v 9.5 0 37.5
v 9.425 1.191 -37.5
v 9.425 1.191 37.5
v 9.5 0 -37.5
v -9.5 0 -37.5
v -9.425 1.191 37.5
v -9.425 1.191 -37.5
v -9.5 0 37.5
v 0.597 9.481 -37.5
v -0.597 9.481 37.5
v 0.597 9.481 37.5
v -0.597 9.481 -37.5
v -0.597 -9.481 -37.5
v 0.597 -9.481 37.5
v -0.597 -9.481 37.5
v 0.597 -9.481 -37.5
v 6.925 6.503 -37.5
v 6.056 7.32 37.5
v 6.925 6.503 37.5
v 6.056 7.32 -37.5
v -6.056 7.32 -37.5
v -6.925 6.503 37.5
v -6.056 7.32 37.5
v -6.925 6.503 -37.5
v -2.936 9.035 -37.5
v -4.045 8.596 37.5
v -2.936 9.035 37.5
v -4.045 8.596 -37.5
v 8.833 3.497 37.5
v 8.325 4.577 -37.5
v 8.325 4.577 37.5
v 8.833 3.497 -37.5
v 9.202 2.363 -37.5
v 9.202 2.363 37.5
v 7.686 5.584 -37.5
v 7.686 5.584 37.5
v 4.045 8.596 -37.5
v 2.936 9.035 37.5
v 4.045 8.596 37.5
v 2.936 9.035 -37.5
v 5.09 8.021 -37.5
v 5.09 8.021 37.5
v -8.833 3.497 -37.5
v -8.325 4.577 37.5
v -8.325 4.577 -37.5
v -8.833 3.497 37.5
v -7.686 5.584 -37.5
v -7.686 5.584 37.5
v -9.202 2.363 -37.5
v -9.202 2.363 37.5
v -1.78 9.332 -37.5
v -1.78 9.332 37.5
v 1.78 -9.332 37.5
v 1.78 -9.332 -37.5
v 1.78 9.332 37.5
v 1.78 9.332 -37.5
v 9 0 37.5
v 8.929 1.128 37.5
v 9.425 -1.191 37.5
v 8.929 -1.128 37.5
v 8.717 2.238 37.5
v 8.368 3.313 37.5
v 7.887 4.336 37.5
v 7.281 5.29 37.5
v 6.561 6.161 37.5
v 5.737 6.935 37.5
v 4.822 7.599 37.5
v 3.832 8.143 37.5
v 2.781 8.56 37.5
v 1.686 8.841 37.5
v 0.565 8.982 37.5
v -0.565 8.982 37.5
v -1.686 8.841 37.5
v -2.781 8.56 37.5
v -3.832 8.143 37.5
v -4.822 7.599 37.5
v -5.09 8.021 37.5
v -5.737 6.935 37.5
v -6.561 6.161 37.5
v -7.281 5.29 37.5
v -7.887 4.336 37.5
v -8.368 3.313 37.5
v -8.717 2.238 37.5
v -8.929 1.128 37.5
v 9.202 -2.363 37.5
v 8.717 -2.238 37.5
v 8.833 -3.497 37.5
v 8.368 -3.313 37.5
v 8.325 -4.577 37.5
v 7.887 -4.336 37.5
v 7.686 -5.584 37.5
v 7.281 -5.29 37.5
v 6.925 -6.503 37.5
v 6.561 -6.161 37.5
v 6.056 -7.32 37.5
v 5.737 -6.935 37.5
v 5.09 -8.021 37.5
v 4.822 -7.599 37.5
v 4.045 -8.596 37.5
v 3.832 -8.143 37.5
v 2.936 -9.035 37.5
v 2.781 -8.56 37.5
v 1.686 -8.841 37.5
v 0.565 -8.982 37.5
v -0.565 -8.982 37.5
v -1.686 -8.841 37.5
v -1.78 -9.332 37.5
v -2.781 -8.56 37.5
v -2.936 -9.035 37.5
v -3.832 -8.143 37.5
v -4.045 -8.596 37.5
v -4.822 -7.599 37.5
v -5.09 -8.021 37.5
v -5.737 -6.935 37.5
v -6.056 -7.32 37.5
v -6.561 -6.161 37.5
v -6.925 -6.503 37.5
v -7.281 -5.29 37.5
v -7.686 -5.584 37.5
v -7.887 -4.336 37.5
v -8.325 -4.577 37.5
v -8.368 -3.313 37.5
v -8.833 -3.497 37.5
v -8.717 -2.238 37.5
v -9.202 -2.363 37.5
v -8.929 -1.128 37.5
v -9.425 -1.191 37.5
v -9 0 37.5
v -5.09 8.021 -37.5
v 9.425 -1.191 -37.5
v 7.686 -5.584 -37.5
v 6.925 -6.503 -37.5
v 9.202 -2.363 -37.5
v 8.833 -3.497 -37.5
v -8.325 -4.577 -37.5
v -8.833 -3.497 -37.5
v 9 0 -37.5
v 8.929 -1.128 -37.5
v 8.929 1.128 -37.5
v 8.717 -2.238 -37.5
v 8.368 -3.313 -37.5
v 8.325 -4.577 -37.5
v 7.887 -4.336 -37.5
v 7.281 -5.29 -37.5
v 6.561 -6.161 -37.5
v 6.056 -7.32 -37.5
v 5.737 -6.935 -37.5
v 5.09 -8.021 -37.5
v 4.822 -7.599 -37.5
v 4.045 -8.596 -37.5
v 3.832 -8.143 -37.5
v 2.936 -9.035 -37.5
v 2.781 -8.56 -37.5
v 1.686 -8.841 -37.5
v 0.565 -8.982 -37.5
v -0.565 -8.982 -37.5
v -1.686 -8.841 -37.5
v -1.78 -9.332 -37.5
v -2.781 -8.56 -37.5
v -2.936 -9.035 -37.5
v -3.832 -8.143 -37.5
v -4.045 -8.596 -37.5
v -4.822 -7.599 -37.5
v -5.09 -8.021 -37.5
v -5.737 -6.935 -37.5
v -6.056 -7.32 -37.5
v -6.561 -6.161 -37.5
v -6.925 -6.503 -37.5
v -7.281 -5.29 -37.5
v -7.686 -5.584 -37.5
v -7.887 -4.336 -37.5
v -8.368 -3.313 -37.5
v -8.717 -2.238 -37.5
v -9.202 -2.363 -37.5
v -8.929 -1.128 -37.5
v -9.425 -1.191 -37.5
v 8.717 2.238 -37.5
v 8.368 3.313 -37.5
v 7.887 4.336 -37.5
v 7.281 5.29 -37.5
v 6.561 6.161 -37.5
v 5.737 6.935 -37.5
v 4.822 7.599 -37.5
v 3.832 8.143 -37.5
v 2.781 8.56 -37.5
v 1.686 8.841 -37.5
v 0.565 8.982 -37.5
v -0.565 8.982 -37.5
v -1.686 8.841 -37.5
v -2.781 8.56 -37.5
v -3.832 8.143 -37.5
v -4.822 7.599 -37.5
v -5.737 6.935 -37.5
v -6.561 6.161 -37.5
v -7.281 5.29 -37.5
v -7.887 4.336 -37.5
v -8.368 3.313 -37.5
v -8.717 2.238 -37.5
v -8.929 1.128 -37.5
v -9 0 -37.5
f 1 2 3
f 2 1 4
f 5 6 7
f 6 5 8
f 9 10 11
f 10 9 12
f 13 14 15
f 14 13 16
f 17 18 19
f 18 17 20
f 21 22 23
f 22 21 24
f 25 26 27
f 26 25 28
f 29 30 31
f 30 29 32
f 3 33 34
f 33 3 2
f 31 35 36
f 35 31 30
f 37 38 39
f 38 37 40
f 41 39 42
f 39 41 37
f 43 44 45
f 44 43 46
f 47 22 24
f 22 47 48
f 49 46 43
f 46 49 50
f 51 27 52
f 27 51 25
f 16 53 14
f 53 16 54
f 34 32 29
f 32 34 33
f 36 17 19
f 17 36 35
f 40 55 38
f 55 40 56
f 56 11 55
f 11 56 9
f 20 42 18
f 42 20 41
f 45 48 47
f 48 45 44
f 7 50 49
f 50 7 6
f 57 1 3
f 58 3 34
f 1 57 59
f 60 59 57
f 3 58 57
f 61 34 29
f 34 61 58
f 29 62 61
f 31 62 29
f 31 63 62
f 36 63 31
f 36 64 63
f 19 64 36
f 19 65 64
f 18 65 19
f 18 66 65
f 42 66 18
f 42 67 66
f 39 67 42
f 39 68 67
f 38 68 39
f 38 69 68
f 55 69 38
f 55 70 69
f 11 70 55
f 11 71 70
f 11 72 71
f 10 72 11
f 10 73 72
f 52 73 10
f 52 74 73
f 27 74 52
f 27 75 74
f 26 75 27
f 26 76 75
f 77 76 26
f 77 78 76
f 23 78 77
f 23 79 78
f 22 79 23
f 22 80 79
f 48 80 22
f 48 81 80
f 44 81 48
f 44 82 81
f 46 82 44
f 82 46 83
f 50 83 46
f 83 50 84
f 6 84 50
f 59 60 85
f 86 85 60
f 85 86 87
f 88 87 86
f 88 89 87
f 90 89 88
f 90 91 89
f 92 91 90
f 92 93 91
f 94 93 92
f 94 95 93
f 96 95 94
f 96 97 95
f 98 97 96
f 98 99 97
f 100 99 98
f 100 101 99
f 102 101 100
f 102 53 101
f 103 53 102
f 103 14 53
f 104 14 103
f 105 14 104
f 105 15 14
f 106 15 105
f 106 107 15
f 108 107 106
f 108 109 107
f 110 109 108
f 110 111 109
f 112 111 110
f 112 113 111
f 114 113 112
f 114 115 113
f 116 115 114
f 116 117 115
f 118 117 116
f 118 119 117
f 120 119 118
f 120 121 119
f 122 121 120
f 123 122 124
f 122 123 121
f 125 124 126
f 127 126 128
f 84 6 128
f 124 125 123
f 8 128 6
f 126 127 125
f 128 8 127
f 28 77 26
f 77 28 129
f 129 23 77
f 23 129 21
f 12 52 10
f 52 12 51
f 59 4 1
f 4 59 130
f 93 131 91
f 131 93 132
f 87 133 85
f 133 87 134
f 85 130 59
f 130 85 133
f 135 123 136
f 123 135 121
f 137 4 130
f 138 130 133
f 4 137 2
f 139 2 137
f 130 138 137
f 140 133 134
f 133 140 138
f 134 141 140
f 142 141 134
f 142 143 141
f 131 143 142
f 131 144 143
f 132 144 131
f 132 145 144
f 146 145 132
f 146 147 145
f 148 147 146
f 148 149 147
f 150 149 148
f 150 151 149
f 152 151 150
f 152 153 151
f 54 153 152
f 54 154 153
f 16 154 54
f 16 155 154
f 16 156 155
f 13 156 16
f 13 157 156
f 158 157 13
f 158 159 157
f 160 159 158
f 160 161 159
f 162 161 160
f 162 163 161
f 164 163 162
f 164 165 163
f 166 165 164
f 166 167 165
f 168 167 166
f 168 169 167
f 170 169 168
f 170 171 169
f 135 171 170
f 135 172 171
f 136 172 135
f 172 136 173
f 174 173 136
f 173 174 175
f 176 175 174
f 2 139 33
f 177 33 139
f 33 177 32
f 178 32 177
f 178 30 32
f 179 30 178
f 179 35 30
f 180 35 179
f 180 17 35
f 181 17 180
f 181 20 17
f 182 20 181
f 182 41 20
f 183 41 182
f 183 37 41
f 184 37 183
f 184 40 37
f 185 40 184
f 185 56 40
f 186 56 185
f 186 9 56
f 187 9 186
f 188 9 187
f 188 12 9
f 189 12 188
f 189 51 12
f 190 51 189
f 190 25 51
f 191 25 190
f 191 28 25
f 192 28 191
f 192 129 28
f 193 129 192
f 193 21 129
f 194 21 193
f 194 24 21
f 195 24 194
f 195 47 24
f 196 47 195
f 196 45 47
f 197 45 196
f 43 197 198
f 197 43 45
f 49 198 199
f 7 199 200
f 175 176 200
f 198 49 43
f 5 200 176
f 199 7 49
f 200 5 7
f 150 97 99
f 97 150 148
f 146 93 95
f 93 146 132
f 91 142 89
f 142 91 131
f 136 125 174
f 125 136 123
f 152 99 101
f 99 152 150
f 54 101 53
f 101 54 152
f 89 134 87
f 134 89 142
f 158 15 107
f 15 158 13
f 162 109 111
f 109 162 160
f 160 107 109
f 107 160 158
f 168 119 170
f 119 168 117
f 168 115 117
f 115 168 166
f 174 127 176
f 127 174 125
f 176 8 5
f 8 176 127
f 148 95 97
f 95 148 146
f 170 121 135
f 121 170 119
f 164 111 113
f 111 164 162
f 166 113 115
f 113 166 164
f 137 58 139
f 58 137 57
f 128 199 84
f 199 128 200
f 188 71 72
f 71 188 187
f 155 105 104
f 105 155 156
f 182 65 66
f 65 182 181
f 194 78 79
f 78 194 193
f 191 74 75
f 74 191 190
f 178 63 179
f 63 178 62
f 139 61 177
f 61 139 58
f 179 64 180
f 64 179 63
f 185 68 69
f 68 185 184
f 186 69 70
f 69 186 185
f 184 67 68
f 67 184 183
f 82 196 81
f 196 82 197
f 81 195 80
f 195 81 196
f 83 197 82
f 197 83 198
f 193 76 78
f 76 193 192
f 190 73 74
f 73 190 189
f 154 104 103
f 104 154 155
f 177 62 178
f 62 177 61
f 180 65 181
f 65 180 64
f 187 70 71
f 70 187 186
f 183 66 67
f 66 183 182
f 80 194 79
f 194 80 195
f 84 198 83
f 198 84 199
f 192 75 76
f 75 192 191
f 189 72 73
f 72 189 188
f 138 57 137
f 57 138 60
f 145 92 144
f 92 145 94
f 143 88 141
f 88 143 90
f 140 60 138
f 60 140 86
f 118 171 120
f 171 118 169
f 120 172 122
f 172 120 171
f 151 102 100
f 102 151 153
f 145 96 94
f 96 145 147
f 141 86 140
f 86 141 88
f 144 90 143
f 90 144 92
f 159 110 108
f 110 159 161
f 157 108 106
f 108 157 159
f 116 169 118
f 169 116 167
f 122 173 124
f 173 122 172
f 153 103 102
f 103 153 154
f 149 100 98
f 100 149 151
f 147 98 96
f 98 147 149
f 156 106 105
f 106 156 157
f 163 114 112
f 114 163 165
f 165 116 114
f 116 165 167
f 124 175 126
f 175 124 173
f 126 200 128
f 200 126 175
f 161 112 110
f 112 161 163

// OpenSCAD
$fn = 50;


difference() {
	union() {
		translate(v = [0, 0, -37.5000000000]) {
			cylinder(h = 75, r = 9.5000000000);
		}
	}
	union() {
		translate(v = [0, 0, -100.0000000000]) {
			cylinder(h = 200, r = 9);
		}
	}
}
